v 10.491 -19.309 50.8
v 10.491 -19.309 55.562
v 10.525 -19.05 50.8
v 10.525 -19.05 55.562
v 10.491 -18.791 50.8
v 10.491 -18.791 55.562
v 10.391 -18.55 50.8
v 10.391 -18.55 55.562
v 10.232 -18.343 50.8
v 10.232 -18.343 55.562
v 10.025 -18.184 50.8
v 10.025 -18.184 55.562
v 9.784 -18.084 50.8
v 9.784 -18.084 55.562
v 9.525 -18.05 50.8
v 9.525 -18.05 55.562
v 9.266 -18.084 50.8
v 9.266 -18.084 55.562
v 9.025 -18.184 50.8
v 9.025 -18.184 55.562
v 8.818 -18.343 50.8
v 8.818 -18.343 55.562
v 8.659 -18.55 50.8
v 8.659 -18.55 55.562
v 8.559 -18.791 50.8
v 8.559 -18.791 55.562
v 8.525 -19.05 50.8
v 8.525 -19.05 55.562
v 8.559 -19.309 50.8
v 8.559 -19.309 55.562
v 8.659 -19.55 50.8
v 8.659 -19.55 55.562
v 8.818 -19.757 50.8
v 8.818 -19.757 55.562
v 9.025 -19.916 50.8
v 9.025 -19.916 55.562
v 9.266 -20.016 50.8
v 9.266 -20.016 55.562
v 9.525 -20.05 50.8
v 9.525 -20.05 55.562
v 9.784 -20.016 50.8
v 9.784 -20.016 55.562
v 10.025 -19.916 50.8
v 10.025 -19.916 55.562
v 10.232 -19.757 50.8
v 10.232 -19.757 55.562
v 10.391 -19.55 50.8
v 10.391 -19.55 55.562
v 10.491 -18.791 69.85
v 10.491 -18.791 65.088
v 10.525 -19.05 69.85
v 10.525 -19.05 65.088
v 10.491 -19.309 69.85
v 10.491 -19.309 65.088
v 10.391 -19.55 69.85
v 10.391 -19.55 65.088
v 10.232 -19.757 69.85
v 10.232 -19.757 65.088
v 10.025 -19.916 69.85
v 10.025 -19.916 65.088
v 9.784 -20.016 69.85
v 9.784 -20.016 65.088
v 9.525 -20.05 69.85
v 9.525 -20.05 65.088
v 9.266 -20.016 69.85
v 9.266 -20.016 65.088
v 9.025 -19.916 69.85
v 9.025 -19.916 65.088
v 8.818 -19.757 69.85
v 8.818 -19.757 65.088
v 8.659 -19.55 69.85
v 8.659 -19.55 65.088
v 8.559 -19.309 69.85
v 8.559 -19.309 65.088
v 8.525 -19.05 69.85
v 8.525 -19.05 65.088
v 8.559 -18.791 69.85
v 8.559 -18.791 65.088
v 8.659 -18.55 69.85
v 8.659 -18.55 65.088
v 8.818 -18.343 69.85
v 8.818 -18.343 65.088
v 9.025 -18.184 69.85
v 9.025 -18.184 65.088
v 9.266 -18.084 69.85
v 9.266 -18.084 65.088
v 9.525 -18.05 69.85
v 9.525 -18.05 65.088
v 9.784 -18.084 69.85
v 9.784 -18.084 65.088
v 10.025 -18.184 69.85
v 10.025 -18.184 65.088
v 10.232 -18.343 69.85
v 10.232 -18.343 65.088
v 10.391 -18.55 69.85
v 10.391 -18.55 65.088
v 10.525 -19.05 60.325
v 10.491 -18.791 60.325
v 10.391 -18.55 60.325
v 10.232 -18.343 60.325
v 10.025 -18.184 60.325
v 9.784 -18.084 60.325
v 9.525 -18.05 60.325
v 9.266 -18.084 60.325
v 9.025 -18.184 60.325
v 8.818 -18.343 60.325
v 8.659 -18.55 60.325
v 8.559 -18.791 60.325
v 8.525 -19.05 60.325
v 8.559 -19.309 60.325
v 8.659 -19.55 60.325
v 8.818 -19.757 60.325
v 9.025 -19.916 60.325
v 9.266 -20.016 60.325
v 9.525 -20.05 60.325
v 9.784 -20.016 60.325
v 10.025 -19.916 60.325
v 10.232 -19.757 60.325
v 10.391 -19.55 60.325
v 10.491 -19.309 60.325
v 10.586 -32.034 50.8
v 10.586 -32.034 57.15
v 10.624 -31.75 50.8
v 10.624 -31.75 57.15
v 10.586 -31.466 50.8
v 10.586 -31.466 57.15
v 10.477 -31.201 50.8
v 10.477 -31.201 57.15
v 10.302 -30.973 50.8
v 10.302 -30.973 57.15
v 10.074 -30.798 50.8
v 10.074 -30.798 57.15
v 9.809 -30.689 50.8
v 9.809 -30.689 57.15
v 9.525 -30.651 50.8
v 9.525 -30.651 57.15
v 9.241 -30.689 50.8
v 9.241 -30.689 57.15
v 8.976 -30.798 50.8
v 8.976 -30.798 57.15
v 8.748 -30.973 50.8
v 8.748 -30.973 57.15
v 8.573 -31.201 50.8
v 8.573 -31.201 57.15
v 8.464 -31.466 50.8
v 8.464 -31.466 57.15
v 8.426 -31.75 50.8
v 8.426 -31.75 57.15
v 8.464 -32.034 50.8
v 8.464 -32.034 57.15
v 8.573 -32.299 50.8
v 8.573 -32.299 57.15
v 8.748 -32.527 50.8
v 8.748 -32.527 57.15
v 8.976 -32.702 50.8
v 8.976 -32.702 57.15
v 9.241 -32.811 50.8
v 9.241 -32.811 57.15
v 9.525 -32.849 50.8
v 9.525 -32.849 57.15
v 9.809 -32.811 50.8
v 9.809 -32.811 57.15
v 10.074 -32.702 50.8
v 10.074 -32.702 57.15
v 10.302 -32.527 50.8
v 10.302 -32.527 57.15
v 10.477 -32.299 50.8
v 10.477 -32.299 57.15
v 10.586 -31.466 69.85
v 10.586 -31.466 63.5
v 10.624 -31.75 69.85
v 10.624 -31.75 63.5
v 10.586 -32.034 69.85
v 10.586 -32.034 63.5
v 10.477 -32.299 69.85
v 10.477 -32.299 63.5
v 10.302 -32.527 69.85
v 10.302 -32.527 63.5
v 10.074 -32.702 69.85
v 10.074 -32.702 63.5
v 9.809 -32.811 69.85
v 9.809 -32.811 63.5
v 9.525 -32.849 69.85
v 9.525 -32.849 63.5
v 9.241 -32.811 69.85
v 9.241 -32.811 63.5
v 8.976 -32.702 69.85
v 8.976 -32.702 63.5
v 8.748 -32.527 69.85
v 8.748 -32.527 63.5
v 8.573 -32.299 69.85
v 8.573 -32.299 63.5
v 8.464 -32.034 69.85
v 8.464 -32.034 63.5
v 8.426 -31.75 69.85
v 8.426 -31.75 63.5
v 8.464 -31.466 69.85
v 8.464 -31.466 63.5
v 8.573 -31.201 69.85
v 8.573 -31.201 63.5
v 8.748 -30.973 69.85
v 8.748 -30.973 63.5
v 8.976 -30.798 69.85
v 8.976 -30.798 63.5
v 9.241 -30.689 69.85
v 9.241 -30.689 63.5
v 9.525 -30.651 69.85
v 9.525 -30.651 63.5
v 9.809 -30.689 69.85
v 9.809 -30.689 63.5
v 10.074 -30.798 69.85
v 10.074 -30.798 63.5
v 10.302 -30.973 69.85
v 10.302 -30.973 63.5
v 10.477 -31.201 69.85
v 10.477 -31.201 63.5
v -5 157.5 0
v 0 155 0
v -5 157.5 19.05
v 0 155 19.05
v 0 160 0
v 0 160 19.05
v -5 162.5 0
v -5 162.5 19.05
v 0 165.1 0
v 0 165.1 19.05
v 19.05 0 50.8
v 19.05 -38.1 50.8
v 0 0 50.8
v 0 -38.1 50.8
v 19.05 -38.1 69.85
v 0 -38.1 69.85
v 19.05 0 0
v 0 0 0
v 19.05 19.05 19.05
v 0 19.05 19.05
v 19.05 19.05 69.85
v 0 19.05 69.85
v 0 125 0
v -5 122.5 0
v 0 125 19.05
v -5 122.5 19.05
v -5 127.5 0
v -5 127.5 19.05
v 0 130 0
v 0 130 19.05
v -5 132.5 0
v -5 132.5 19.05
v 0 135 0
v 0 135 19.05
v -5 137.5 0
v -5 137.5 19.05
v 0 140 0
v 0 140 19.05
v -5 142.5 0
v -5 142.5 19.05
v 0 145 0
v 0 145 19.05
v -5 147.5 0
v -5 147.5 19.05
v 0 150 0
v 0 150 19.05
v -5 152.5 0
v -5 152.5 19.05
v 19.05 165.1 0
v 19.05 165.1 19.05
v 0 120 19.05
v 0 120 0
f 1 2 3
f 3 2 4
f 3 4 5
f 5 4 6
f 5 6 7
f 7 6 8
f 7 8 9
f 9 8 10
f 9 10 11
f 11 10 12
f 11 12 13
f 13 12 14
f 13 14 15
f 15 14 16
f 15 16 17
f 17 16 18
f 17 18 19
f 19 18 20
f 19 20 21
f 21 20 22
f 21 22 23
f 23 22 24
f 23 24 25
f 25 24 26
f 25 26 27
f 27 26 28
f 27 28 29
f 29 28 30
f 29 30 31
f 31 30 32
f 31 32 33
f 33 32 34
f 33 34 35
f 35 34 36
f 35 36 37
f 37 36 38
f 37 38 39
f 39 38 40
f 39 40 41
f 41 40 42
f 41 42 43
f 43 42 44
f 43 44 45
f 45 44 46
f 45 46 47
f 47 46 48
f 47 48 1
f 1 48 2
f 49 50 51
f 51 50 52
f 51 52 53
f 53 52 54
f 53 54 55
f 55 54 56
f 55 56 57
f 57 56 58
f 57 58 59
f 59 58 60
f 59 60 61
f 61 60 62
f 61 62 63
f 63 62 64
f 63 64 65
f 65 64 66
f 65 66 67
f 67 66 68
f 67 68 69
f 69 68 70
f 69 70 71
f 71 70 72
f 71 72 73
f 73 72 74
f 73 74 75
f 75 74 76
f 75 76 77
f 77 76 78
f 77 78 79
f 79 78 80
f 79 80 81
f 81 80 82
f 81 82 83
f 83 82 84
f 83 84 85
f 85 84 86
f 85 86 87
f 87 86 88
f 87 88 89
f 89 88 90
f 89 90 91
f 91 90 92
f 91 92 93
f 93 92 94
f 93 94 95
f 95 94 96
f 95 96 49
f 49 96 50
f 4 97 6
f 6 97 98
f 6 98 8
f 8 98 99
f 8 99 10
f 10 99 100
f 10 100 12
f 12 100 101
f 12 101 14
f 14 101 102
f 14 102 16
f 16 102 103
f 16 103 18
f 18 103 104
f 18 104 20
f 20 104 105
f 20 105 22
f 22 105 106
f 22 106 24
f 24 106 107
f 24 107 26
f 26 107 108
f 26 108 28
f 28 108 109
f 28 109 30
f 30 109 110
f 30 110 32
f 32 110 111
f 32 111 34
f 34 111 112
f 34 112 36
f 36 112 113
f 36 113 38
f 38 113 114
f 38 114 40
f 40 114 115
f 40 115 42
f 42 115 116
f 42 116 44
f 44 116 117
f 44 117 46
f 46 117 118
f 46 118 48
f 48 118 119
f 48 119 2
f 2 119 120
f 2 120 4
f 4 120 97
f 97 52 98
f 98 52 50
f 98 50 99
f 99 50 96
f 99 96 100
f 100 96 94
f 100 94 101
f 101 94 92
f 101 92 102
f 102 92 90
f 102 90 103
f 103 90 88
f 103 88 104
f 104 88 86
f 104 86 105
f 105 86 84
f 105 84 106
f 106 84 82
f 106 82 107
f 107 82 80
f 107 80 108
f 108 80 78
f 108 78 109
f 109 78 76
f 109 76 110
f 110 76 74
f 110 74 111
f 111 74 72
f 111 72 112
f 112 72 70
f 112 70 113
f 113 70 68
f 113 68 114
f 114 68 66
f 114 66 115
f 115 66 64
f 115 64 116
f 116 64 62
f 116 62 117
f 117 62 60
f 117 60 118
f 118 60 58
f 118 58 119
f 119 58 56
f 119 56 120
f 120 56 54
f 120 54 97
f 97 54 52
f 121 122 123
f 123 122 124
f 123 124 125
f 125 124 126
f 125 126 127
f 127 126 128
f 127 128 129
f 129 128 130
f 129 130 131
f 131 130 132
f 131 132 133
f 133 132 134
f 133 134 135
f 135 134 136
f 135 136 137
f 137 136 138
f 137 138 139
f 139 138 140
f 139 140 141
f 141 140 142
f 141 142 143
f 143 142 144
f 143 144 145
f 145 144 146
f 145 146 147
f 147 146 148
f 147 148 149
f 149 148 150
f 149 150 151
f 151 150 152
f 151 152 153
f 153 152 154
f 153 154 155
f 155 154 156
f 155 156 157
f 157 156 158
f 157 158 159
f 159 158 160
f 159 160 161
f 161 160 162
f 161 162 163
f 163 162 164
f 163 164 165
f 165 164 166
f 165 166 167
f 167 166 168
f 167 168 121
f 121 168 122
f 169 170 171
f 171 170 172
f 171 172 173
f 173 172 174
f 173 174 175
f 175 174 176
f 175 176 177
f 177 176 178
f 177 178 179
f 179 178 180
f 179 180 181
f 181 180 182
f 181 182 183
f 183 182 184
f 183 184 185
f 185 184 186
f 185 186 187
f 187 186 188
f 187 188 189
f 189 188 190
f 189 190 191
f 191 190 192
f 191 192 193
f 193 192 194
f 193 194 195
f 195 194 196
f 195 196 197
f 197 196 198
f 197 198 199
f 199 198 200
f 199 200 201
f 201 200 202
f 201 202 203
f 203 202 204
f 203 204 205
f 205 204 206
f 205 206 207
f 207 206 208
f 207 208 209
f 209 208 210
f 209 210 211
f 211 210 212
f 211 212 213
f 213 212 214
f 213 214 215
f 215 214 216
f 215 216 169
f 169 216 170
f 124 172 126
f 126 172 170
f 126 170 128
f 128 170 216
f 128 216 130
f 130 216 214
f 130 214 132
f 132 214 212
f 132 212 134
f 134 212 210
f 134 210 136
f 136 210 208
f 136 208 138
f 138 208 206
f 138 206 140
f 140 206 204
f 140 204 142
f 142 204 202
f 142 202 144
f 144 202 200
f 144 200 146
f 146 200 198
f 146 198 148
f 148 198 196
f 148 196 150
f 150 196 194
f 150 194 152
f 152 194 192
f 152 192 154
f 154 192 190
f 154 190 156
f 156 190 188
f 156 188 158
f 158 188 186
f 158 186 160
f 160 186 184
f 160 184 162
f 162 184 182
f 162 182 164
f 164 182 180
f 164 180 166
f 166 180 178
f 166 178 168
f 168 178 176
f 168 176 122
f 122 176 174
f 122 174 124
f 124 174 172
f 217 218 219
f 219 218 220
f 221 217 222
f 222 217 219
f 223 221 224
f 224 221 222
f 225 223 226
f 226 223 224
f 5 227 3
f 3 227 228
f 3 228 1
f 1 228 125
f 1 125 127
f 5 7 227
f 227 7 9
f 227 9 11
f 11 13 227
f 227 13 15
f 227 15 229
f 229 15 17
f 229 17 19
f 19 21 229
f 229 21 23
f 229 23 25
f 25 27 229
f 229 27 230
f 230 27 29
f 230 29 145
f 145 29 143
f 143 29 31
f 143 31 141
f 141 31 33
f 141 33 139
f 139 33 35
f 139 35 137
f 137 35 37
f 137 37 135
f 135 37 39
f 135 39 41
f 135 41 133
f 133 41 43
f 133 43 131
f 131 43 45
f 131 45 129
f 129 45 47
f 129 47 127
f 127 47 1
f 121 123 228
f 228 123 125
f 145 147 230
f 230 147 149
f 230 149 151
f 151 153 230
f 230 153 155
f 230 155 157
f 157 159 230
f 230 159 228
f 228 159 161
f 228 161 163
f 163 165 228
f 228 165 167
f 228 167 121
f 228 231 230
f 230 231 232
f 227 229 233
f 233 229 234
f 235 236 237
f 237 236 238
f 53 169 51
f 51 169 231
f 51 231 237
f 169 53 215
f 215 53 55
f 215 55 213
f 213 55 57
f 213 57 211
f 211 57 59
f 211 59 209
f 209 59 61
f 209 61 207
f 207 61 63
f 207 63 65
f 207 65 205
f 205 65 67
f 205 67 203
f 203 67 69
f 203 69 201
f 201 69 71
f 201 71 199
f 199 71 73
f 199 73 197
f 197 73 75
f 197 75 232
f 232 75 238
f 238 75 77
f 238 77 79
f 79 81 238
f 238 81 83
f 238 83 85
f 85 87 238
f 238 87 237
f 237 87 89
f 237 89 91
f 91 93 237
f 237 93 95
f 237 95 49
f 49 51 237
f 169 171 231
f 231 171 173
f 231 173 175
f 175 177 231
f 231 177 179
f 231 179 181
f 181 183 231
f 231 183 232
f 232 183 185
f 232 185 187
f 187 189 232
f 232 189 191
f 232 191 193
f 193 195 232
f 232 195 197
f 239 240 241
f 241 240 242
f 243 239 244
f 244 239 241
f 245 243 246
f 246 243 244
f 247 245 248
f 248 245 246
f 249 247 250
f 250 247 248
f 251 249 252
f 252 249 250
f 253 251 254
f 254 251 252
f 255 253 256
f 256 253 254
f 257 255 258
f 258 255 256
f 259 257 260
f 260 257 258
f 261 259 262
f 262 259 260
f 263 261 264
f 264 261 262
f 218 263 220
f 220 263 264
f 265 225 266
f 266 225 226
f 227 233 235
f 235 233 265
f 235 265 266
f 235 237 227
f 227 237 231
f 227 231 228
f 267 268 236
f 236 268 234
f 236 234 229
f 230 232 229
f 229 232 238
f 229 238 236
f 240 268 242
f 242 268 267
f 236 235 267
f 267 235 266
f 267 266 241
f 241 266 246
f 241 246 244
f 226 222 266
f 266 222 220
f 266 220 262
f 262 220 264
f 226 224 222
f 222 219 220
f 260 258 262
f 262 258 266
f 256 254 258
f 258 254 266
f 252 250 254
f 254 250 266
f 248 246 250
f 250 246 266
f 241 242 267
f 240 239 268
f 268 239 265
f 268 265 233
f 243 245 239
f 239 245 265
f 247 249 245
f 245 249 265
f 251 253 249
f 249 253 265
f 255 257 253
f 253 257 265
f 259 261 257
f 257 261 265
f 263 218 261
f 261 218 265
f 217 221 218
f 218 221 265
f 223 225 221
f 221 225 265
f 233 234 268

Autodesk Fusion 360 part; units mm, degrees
sketch "Sketch1" plane through (0, 0, 0) normal (0, 0, 1) x (1, 0, 0)
  line L0 (0, 0) -> (19.05, 0)
  line L1 (19.05, 0) -> (19.05, 165.1)
  line L2 (19.05, 165.1) -> (0, 165.1)
  line L3 (0, 165.1) -> (0, 0)
  line L4 (0, 165.1) -> (-5, 162.5)
  line L5 (-5, 162.5) -> (0, 160)
  line L6 (-5, 157.5) -> (0, 160)
  line L7 (-5, 157.5) -> (0, 155)
  line L8 (0, 155) -> (-5, 152.5)
  line L9 (-5, 152.5) -> (0, 150)
  line L10 (0, 150) -> (-5, 147.5)
  line L11 (-5, 147.5) -> (0, 145)
  line L12 (0, 145) -> (-5, 142.5)
  line L13 (-5, 142.5) -> (0, 140)
  line L14 (0, 140) -> (-5, 137.5)
  line L15 (-5, 137.5) -> (0, 135)
  line L16 (0, 135) -> (-5, 132.5)
  line L17 (-5, 132.5) -> (0, 130)
  line L18 (0, 130) -> (-5, 127.5)
  line L19 (-5, 127.5) -> (0, 125)
  line L20 (0, 125) -> (-5, 122.5)
  line L21 (-5, 122.5) -> (0, 120)
  dimension "d2" = 19.05
  dimension "d3" = 165.1
extrude "Extrude1" add sketch "Sketch1" along normal blind 19.05 contours L0 L1 L2 L3 | L3 L20 L21 | L3 L18 L19 | L3 L16 L17 | L3 L14 L15 | L3 L8 L9 | L3 L12 L13 | L3 L10 L11
sketch "Sketch2" plane through (0, 0, 19.05) normal (0, 0, 1) x (-1, 0, 0)
  line L0 (5, -122.5) -> (0, -120)
  line L1 (0, -120) -> (0, 0)
  line L2 (0, 0) -> (-19.05, 0)
  line L3 (-19.05, 0) -> (-19.05, -165.1)
  line L4 (-19.05, -165.1) -> (0, -165.1)
  line L5 (0, -165.1) -> (0, -155)
  line L6 (0, -155) -> (5, -152.5)
  line L7 (5, -152.5) -> (0, -150)
  line L8 (0, -150) -> (5, -147.5)
  line L9 (5, -147.5) -> (0, -145)
  line L10 (0, -145) -> (5, -142.5)
  line L11 (5, -142.5) -> (0, -140)
  line L12 (0, -140) -> (5, -137.5)
  line L13 (5, -137.5) -> (0, -135)
  line L14 (0, -135) -> (5, -132.5)
  line L15 (5, -132.5) -> (0, -130)
  line L16 (0, -130) -> (5, -127.5)
  line L17 (5, -127.5) -> (0, -125)
  line L18 (0, -125) -> (5, -122.5)
  line L19 (0, 0) -> (-19.05, 0)
  line L20 (-19.05, 0) -> (-19.05, -19.05)
  line L21 (-19.05, -19.05) -> (0, -19.05)
  line L22 (0, -19.05) -> (0, 0)
  dimension "d6" = 19.05
  dimension "d7" = 19.05
extrude "Extrude2" add sketch "Sketch2" along normal blind 50.8 contours L1 L2 L3 L19 L20 L21 L22
sketch "Sketch3" plane through (0, 0, 0) normal (0, -1, 0) x (1, 0, 0)
  line L0 (0, 0) -> (19.05, 0)
  line L1 (19.05, 0) -> (19.05, 69.85)
  line L2 (19.05, 69.85) -> (0, 69.85)
  line L3 (0, 69.85) -> (0, 0)
  line L4 (0, 69.85) -> (19.05, 69.85)
  line L5 (19.05, 69.85) -> (19.05, 50.8)
  line L6 (19.05, 50.8) -> (0, 50.8)
  line L7 (0, 50.8) -> (0, 69.85)
  dimension "d10" = 19.05
extrude "Extrude3" add sketch "Sketch3" along normal blind 38.1 contours L1 L2 L3 L4 L5 L6 L7
extrude "Extrude4" add sketch "Sketch1" along normal blind 19.05 contours L3 L4 L5 | L3 L6 L7
sketch "Sketch4" plane through (0, 0, 69.85) normal (0, 0, 1) x (-1, 0, 0)
  line L0 (0, -19.05) -> (0, 38.1)
  line L1 (0, 38.1) -> (-19.05, 38.1)
  line L2 (-19.05, 38.1) -> (-19.05, -19.05)
  line L3 (-19.05, -19.05) -> (0, -19.05)
  circle A0 centre (-9.525, 19.05) radius 1
  circle A1 centre (-9.525, 31.75) radius 1.0988
  dimension "d15" = 12.7
  dimension "d16" = 9.525
  dimension "d17" = 6.35
extrude "Extrude5" cut sketch "Sketch4" against normal blind 33 contours A0 | A1
